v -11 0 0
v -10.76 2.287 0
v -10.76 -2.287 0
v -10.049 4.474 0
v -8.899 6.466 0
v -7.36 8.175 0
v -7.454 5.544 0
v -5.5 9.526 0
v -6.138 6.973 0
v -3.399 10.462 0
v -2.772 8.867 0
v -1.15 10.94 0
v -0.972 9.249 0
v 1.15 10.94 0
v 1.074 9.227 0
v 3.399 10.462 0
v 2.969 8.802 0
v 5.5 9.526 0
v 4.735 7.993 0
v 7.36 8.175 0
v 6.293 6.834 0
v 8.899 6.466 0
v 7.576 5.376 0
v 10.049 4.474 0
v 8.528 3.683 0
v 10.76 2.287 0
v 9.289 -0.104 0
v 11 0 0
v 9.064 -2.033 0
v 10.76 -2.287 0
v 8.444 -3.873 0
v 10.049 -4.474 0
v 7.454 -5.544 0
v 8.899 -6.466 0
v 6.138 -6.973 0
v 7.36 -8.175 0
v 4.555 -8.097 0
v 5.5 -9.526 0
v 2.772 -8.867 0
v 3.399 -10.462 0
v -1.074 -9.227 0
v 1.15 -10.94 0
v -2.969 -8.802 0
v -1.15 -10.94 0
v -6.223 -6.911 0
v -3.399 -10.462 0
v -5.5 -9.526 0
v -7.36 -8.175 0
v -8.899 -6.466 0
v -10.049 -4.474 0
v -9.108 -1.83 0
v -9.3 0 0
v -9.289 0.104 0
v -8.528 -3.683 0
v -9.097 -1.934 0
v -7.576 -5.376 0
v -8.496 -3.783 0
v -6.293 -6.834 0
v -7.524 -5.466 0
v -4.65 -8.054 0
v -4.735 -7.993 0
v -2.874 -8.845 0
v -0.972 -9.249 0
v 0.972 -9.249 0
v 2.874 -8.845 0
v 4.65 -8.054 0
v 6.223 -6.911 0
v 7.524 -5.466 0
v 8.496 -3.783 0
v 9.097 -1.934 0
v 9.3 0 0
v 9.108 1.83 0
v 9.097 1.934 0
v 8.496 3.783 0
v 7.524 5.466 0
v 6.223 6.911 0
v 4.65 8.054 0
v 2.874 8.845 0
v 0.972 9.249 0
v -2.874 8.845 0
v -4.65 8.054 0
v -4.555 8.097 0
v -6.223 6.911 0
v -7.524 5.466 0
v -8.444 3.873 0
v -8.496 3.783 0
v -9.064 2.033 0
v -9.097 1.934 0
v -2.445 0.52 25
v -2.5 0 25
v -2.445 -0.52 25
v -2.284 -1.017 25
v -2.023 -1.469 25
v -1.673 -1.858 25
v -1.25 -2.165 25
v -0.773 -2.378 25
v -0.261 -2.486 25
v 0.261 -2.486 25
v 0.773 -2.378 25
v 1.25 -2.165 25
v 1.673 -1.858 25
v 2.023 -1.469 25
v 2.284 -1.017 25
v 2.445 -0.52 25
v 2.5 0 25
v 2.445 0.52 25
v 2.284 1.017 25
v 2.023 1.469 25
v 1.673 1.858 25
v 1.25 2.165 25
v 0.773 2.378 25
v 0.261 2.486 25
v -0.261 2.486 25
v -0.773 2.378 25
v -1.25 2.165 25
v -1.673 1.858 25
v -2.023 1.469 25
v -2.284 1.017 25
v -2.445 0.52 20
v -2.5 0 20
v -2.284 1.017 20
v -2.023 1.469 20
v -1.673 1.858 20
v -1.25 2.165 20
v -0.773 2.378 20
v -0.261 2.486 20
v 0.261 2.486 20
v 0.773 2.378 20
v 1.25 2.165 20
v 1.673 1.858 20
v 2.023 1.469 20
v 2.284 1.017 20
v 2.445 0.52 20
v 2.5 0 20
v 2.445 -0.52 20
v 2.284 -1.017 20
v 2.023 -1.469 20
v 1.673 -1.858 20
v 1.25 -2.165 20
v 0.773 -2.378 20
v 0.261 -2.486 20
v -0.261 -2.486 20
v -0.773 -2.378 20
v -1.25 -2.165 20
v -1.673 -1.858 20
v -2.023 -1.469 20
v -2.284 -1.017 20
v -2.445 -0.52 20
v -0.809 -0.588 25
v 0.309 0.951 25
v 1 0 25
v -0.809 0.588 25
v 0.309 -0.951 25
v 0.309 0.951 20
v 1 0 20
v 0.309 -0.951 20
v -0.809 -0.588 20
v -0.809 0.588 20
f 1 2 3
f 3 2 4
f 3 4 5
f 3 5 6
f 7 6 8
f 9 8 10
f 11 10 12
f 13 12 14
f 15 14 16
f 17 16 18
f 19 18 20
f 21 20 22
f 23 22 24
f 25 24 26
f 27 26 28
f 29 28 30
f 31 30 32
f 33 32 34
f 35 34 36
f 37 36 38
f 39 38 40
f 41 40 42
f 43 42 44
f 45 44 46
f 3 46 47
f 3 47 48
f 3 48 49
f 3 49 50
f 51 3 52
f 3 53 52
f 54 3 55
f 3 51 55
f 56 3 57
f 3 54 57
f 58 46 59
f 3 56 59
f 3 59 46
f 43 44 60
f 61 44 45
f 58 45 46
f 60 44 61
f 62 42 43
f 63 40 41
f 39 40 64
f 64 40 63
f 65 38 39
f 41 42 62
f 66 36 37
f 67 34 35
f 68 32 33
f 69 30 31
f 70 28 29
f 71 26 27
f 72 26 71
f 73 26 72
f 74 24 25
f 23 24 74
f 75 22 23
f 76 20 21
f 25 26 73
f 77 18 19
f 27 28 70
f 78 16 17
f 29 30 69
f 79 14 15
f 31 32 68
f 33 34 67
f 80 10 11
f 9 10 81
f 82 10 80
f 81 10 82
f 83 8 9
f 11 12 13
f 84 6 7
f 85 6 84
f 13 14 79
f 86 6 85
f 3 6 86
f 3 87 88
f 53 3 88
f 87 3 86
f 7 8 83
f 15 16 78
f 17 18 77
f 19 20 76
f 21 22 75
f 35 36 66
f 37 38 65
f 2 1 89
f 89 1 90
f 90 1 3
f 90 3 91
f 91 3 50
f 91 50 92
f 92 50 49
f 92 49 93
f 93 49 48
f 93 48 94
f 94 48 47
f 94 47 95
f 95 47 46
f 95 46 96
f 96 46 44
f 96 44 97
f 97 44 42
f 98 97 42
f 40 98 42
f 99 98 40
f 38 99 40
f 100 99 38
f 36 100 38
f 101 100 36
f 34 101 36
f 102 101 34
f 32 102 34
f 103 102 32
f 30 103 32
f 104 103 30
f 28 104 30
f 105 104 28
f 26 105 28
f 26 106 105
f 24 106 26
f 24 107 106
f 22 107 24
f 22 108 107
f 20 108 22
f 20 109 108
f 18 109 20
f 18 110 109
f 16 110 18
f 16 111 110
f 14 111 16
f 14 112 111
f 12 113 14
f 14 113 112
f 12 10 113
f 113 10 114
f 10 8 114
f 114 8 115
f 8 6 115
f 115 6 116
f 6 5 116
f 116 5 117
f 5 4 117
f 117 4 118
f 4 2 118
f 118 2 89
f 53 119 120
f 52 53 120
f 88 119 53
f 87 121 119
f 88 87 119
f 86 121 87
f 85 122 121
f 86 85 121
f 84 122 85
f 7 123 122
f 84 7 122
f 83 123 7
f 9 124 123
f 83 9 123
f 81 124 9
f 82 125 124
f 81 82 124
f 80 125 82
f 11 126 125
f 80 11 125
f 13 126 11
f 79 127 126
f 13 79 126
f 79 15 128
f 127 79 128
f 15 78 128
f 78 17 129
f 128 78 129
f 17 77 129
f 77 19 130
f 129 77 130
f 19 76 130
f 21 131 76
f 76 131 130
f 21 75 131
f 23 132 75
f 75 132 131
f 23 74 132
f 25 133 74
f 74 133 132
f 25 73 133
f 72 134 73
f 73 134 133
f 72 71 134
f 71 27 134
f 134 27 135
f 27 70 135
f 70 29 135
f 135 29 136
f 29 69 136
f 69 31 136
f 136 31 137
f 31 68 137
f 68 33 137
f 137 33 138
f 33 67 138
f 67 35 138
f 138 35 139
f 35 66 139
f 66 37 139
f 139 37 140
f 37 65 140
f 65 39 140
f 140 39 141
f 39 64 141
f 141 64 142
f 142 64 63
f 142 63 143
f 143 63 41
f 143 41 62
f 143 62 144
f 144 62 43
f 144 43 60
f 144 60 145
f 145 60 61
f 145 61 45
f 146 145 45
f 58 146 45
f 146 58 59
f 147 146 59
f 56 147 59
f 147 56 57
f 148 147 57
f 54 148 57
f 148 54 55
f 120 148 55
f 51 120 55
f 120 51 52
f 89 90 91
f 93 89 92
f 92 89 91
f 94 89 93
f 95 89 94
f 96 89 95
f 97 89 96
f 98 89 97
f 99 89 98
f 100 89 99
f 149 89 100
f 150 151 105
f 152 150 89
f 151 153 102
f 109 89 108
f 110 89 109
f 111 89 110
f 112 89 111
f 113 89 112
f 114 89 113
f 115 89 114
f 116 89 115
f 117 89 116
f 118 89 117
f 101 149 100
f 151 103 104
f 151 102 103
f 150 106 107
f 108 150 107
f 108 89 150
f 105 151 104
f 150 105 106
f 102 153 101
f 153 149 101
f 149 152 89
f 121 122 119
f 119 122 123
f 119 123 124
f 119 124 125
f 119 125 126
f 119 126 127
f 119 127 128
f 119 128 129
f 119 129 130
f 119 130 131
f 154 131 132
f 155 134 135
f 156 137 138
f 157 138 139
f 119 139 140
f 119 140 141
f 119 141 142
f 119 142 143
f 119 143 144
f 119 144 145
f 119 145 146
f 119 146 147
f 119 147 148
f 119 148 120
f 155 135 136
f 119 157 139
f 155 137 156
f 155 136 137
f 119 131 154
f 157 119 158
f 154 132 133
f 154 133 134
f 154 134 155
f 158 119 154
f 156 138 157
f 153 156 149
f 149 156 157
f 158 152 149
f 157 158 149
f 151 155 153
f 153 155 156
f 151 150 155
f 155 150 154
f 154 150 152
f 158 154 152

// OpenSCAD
base_dia=22;
top_dia=5;
inside_dia=2;
height=25;

module cordend(bd, td, id, ht)
{
	tr = td/2;
	br = bd/2;
	ir = id/2;
	difference()
	{
		cylinder(h=ht, r1=br, r2=tr);
		union ()
		{
			translate([0,0,-5]) { cylinder(h=ht, r1=br, r2=tr); }
			cylinder(h=ht+1,r=ir);
		}
	}
}

// construct object now
cordend(base_dia, top_dia, inside_dia, height);
